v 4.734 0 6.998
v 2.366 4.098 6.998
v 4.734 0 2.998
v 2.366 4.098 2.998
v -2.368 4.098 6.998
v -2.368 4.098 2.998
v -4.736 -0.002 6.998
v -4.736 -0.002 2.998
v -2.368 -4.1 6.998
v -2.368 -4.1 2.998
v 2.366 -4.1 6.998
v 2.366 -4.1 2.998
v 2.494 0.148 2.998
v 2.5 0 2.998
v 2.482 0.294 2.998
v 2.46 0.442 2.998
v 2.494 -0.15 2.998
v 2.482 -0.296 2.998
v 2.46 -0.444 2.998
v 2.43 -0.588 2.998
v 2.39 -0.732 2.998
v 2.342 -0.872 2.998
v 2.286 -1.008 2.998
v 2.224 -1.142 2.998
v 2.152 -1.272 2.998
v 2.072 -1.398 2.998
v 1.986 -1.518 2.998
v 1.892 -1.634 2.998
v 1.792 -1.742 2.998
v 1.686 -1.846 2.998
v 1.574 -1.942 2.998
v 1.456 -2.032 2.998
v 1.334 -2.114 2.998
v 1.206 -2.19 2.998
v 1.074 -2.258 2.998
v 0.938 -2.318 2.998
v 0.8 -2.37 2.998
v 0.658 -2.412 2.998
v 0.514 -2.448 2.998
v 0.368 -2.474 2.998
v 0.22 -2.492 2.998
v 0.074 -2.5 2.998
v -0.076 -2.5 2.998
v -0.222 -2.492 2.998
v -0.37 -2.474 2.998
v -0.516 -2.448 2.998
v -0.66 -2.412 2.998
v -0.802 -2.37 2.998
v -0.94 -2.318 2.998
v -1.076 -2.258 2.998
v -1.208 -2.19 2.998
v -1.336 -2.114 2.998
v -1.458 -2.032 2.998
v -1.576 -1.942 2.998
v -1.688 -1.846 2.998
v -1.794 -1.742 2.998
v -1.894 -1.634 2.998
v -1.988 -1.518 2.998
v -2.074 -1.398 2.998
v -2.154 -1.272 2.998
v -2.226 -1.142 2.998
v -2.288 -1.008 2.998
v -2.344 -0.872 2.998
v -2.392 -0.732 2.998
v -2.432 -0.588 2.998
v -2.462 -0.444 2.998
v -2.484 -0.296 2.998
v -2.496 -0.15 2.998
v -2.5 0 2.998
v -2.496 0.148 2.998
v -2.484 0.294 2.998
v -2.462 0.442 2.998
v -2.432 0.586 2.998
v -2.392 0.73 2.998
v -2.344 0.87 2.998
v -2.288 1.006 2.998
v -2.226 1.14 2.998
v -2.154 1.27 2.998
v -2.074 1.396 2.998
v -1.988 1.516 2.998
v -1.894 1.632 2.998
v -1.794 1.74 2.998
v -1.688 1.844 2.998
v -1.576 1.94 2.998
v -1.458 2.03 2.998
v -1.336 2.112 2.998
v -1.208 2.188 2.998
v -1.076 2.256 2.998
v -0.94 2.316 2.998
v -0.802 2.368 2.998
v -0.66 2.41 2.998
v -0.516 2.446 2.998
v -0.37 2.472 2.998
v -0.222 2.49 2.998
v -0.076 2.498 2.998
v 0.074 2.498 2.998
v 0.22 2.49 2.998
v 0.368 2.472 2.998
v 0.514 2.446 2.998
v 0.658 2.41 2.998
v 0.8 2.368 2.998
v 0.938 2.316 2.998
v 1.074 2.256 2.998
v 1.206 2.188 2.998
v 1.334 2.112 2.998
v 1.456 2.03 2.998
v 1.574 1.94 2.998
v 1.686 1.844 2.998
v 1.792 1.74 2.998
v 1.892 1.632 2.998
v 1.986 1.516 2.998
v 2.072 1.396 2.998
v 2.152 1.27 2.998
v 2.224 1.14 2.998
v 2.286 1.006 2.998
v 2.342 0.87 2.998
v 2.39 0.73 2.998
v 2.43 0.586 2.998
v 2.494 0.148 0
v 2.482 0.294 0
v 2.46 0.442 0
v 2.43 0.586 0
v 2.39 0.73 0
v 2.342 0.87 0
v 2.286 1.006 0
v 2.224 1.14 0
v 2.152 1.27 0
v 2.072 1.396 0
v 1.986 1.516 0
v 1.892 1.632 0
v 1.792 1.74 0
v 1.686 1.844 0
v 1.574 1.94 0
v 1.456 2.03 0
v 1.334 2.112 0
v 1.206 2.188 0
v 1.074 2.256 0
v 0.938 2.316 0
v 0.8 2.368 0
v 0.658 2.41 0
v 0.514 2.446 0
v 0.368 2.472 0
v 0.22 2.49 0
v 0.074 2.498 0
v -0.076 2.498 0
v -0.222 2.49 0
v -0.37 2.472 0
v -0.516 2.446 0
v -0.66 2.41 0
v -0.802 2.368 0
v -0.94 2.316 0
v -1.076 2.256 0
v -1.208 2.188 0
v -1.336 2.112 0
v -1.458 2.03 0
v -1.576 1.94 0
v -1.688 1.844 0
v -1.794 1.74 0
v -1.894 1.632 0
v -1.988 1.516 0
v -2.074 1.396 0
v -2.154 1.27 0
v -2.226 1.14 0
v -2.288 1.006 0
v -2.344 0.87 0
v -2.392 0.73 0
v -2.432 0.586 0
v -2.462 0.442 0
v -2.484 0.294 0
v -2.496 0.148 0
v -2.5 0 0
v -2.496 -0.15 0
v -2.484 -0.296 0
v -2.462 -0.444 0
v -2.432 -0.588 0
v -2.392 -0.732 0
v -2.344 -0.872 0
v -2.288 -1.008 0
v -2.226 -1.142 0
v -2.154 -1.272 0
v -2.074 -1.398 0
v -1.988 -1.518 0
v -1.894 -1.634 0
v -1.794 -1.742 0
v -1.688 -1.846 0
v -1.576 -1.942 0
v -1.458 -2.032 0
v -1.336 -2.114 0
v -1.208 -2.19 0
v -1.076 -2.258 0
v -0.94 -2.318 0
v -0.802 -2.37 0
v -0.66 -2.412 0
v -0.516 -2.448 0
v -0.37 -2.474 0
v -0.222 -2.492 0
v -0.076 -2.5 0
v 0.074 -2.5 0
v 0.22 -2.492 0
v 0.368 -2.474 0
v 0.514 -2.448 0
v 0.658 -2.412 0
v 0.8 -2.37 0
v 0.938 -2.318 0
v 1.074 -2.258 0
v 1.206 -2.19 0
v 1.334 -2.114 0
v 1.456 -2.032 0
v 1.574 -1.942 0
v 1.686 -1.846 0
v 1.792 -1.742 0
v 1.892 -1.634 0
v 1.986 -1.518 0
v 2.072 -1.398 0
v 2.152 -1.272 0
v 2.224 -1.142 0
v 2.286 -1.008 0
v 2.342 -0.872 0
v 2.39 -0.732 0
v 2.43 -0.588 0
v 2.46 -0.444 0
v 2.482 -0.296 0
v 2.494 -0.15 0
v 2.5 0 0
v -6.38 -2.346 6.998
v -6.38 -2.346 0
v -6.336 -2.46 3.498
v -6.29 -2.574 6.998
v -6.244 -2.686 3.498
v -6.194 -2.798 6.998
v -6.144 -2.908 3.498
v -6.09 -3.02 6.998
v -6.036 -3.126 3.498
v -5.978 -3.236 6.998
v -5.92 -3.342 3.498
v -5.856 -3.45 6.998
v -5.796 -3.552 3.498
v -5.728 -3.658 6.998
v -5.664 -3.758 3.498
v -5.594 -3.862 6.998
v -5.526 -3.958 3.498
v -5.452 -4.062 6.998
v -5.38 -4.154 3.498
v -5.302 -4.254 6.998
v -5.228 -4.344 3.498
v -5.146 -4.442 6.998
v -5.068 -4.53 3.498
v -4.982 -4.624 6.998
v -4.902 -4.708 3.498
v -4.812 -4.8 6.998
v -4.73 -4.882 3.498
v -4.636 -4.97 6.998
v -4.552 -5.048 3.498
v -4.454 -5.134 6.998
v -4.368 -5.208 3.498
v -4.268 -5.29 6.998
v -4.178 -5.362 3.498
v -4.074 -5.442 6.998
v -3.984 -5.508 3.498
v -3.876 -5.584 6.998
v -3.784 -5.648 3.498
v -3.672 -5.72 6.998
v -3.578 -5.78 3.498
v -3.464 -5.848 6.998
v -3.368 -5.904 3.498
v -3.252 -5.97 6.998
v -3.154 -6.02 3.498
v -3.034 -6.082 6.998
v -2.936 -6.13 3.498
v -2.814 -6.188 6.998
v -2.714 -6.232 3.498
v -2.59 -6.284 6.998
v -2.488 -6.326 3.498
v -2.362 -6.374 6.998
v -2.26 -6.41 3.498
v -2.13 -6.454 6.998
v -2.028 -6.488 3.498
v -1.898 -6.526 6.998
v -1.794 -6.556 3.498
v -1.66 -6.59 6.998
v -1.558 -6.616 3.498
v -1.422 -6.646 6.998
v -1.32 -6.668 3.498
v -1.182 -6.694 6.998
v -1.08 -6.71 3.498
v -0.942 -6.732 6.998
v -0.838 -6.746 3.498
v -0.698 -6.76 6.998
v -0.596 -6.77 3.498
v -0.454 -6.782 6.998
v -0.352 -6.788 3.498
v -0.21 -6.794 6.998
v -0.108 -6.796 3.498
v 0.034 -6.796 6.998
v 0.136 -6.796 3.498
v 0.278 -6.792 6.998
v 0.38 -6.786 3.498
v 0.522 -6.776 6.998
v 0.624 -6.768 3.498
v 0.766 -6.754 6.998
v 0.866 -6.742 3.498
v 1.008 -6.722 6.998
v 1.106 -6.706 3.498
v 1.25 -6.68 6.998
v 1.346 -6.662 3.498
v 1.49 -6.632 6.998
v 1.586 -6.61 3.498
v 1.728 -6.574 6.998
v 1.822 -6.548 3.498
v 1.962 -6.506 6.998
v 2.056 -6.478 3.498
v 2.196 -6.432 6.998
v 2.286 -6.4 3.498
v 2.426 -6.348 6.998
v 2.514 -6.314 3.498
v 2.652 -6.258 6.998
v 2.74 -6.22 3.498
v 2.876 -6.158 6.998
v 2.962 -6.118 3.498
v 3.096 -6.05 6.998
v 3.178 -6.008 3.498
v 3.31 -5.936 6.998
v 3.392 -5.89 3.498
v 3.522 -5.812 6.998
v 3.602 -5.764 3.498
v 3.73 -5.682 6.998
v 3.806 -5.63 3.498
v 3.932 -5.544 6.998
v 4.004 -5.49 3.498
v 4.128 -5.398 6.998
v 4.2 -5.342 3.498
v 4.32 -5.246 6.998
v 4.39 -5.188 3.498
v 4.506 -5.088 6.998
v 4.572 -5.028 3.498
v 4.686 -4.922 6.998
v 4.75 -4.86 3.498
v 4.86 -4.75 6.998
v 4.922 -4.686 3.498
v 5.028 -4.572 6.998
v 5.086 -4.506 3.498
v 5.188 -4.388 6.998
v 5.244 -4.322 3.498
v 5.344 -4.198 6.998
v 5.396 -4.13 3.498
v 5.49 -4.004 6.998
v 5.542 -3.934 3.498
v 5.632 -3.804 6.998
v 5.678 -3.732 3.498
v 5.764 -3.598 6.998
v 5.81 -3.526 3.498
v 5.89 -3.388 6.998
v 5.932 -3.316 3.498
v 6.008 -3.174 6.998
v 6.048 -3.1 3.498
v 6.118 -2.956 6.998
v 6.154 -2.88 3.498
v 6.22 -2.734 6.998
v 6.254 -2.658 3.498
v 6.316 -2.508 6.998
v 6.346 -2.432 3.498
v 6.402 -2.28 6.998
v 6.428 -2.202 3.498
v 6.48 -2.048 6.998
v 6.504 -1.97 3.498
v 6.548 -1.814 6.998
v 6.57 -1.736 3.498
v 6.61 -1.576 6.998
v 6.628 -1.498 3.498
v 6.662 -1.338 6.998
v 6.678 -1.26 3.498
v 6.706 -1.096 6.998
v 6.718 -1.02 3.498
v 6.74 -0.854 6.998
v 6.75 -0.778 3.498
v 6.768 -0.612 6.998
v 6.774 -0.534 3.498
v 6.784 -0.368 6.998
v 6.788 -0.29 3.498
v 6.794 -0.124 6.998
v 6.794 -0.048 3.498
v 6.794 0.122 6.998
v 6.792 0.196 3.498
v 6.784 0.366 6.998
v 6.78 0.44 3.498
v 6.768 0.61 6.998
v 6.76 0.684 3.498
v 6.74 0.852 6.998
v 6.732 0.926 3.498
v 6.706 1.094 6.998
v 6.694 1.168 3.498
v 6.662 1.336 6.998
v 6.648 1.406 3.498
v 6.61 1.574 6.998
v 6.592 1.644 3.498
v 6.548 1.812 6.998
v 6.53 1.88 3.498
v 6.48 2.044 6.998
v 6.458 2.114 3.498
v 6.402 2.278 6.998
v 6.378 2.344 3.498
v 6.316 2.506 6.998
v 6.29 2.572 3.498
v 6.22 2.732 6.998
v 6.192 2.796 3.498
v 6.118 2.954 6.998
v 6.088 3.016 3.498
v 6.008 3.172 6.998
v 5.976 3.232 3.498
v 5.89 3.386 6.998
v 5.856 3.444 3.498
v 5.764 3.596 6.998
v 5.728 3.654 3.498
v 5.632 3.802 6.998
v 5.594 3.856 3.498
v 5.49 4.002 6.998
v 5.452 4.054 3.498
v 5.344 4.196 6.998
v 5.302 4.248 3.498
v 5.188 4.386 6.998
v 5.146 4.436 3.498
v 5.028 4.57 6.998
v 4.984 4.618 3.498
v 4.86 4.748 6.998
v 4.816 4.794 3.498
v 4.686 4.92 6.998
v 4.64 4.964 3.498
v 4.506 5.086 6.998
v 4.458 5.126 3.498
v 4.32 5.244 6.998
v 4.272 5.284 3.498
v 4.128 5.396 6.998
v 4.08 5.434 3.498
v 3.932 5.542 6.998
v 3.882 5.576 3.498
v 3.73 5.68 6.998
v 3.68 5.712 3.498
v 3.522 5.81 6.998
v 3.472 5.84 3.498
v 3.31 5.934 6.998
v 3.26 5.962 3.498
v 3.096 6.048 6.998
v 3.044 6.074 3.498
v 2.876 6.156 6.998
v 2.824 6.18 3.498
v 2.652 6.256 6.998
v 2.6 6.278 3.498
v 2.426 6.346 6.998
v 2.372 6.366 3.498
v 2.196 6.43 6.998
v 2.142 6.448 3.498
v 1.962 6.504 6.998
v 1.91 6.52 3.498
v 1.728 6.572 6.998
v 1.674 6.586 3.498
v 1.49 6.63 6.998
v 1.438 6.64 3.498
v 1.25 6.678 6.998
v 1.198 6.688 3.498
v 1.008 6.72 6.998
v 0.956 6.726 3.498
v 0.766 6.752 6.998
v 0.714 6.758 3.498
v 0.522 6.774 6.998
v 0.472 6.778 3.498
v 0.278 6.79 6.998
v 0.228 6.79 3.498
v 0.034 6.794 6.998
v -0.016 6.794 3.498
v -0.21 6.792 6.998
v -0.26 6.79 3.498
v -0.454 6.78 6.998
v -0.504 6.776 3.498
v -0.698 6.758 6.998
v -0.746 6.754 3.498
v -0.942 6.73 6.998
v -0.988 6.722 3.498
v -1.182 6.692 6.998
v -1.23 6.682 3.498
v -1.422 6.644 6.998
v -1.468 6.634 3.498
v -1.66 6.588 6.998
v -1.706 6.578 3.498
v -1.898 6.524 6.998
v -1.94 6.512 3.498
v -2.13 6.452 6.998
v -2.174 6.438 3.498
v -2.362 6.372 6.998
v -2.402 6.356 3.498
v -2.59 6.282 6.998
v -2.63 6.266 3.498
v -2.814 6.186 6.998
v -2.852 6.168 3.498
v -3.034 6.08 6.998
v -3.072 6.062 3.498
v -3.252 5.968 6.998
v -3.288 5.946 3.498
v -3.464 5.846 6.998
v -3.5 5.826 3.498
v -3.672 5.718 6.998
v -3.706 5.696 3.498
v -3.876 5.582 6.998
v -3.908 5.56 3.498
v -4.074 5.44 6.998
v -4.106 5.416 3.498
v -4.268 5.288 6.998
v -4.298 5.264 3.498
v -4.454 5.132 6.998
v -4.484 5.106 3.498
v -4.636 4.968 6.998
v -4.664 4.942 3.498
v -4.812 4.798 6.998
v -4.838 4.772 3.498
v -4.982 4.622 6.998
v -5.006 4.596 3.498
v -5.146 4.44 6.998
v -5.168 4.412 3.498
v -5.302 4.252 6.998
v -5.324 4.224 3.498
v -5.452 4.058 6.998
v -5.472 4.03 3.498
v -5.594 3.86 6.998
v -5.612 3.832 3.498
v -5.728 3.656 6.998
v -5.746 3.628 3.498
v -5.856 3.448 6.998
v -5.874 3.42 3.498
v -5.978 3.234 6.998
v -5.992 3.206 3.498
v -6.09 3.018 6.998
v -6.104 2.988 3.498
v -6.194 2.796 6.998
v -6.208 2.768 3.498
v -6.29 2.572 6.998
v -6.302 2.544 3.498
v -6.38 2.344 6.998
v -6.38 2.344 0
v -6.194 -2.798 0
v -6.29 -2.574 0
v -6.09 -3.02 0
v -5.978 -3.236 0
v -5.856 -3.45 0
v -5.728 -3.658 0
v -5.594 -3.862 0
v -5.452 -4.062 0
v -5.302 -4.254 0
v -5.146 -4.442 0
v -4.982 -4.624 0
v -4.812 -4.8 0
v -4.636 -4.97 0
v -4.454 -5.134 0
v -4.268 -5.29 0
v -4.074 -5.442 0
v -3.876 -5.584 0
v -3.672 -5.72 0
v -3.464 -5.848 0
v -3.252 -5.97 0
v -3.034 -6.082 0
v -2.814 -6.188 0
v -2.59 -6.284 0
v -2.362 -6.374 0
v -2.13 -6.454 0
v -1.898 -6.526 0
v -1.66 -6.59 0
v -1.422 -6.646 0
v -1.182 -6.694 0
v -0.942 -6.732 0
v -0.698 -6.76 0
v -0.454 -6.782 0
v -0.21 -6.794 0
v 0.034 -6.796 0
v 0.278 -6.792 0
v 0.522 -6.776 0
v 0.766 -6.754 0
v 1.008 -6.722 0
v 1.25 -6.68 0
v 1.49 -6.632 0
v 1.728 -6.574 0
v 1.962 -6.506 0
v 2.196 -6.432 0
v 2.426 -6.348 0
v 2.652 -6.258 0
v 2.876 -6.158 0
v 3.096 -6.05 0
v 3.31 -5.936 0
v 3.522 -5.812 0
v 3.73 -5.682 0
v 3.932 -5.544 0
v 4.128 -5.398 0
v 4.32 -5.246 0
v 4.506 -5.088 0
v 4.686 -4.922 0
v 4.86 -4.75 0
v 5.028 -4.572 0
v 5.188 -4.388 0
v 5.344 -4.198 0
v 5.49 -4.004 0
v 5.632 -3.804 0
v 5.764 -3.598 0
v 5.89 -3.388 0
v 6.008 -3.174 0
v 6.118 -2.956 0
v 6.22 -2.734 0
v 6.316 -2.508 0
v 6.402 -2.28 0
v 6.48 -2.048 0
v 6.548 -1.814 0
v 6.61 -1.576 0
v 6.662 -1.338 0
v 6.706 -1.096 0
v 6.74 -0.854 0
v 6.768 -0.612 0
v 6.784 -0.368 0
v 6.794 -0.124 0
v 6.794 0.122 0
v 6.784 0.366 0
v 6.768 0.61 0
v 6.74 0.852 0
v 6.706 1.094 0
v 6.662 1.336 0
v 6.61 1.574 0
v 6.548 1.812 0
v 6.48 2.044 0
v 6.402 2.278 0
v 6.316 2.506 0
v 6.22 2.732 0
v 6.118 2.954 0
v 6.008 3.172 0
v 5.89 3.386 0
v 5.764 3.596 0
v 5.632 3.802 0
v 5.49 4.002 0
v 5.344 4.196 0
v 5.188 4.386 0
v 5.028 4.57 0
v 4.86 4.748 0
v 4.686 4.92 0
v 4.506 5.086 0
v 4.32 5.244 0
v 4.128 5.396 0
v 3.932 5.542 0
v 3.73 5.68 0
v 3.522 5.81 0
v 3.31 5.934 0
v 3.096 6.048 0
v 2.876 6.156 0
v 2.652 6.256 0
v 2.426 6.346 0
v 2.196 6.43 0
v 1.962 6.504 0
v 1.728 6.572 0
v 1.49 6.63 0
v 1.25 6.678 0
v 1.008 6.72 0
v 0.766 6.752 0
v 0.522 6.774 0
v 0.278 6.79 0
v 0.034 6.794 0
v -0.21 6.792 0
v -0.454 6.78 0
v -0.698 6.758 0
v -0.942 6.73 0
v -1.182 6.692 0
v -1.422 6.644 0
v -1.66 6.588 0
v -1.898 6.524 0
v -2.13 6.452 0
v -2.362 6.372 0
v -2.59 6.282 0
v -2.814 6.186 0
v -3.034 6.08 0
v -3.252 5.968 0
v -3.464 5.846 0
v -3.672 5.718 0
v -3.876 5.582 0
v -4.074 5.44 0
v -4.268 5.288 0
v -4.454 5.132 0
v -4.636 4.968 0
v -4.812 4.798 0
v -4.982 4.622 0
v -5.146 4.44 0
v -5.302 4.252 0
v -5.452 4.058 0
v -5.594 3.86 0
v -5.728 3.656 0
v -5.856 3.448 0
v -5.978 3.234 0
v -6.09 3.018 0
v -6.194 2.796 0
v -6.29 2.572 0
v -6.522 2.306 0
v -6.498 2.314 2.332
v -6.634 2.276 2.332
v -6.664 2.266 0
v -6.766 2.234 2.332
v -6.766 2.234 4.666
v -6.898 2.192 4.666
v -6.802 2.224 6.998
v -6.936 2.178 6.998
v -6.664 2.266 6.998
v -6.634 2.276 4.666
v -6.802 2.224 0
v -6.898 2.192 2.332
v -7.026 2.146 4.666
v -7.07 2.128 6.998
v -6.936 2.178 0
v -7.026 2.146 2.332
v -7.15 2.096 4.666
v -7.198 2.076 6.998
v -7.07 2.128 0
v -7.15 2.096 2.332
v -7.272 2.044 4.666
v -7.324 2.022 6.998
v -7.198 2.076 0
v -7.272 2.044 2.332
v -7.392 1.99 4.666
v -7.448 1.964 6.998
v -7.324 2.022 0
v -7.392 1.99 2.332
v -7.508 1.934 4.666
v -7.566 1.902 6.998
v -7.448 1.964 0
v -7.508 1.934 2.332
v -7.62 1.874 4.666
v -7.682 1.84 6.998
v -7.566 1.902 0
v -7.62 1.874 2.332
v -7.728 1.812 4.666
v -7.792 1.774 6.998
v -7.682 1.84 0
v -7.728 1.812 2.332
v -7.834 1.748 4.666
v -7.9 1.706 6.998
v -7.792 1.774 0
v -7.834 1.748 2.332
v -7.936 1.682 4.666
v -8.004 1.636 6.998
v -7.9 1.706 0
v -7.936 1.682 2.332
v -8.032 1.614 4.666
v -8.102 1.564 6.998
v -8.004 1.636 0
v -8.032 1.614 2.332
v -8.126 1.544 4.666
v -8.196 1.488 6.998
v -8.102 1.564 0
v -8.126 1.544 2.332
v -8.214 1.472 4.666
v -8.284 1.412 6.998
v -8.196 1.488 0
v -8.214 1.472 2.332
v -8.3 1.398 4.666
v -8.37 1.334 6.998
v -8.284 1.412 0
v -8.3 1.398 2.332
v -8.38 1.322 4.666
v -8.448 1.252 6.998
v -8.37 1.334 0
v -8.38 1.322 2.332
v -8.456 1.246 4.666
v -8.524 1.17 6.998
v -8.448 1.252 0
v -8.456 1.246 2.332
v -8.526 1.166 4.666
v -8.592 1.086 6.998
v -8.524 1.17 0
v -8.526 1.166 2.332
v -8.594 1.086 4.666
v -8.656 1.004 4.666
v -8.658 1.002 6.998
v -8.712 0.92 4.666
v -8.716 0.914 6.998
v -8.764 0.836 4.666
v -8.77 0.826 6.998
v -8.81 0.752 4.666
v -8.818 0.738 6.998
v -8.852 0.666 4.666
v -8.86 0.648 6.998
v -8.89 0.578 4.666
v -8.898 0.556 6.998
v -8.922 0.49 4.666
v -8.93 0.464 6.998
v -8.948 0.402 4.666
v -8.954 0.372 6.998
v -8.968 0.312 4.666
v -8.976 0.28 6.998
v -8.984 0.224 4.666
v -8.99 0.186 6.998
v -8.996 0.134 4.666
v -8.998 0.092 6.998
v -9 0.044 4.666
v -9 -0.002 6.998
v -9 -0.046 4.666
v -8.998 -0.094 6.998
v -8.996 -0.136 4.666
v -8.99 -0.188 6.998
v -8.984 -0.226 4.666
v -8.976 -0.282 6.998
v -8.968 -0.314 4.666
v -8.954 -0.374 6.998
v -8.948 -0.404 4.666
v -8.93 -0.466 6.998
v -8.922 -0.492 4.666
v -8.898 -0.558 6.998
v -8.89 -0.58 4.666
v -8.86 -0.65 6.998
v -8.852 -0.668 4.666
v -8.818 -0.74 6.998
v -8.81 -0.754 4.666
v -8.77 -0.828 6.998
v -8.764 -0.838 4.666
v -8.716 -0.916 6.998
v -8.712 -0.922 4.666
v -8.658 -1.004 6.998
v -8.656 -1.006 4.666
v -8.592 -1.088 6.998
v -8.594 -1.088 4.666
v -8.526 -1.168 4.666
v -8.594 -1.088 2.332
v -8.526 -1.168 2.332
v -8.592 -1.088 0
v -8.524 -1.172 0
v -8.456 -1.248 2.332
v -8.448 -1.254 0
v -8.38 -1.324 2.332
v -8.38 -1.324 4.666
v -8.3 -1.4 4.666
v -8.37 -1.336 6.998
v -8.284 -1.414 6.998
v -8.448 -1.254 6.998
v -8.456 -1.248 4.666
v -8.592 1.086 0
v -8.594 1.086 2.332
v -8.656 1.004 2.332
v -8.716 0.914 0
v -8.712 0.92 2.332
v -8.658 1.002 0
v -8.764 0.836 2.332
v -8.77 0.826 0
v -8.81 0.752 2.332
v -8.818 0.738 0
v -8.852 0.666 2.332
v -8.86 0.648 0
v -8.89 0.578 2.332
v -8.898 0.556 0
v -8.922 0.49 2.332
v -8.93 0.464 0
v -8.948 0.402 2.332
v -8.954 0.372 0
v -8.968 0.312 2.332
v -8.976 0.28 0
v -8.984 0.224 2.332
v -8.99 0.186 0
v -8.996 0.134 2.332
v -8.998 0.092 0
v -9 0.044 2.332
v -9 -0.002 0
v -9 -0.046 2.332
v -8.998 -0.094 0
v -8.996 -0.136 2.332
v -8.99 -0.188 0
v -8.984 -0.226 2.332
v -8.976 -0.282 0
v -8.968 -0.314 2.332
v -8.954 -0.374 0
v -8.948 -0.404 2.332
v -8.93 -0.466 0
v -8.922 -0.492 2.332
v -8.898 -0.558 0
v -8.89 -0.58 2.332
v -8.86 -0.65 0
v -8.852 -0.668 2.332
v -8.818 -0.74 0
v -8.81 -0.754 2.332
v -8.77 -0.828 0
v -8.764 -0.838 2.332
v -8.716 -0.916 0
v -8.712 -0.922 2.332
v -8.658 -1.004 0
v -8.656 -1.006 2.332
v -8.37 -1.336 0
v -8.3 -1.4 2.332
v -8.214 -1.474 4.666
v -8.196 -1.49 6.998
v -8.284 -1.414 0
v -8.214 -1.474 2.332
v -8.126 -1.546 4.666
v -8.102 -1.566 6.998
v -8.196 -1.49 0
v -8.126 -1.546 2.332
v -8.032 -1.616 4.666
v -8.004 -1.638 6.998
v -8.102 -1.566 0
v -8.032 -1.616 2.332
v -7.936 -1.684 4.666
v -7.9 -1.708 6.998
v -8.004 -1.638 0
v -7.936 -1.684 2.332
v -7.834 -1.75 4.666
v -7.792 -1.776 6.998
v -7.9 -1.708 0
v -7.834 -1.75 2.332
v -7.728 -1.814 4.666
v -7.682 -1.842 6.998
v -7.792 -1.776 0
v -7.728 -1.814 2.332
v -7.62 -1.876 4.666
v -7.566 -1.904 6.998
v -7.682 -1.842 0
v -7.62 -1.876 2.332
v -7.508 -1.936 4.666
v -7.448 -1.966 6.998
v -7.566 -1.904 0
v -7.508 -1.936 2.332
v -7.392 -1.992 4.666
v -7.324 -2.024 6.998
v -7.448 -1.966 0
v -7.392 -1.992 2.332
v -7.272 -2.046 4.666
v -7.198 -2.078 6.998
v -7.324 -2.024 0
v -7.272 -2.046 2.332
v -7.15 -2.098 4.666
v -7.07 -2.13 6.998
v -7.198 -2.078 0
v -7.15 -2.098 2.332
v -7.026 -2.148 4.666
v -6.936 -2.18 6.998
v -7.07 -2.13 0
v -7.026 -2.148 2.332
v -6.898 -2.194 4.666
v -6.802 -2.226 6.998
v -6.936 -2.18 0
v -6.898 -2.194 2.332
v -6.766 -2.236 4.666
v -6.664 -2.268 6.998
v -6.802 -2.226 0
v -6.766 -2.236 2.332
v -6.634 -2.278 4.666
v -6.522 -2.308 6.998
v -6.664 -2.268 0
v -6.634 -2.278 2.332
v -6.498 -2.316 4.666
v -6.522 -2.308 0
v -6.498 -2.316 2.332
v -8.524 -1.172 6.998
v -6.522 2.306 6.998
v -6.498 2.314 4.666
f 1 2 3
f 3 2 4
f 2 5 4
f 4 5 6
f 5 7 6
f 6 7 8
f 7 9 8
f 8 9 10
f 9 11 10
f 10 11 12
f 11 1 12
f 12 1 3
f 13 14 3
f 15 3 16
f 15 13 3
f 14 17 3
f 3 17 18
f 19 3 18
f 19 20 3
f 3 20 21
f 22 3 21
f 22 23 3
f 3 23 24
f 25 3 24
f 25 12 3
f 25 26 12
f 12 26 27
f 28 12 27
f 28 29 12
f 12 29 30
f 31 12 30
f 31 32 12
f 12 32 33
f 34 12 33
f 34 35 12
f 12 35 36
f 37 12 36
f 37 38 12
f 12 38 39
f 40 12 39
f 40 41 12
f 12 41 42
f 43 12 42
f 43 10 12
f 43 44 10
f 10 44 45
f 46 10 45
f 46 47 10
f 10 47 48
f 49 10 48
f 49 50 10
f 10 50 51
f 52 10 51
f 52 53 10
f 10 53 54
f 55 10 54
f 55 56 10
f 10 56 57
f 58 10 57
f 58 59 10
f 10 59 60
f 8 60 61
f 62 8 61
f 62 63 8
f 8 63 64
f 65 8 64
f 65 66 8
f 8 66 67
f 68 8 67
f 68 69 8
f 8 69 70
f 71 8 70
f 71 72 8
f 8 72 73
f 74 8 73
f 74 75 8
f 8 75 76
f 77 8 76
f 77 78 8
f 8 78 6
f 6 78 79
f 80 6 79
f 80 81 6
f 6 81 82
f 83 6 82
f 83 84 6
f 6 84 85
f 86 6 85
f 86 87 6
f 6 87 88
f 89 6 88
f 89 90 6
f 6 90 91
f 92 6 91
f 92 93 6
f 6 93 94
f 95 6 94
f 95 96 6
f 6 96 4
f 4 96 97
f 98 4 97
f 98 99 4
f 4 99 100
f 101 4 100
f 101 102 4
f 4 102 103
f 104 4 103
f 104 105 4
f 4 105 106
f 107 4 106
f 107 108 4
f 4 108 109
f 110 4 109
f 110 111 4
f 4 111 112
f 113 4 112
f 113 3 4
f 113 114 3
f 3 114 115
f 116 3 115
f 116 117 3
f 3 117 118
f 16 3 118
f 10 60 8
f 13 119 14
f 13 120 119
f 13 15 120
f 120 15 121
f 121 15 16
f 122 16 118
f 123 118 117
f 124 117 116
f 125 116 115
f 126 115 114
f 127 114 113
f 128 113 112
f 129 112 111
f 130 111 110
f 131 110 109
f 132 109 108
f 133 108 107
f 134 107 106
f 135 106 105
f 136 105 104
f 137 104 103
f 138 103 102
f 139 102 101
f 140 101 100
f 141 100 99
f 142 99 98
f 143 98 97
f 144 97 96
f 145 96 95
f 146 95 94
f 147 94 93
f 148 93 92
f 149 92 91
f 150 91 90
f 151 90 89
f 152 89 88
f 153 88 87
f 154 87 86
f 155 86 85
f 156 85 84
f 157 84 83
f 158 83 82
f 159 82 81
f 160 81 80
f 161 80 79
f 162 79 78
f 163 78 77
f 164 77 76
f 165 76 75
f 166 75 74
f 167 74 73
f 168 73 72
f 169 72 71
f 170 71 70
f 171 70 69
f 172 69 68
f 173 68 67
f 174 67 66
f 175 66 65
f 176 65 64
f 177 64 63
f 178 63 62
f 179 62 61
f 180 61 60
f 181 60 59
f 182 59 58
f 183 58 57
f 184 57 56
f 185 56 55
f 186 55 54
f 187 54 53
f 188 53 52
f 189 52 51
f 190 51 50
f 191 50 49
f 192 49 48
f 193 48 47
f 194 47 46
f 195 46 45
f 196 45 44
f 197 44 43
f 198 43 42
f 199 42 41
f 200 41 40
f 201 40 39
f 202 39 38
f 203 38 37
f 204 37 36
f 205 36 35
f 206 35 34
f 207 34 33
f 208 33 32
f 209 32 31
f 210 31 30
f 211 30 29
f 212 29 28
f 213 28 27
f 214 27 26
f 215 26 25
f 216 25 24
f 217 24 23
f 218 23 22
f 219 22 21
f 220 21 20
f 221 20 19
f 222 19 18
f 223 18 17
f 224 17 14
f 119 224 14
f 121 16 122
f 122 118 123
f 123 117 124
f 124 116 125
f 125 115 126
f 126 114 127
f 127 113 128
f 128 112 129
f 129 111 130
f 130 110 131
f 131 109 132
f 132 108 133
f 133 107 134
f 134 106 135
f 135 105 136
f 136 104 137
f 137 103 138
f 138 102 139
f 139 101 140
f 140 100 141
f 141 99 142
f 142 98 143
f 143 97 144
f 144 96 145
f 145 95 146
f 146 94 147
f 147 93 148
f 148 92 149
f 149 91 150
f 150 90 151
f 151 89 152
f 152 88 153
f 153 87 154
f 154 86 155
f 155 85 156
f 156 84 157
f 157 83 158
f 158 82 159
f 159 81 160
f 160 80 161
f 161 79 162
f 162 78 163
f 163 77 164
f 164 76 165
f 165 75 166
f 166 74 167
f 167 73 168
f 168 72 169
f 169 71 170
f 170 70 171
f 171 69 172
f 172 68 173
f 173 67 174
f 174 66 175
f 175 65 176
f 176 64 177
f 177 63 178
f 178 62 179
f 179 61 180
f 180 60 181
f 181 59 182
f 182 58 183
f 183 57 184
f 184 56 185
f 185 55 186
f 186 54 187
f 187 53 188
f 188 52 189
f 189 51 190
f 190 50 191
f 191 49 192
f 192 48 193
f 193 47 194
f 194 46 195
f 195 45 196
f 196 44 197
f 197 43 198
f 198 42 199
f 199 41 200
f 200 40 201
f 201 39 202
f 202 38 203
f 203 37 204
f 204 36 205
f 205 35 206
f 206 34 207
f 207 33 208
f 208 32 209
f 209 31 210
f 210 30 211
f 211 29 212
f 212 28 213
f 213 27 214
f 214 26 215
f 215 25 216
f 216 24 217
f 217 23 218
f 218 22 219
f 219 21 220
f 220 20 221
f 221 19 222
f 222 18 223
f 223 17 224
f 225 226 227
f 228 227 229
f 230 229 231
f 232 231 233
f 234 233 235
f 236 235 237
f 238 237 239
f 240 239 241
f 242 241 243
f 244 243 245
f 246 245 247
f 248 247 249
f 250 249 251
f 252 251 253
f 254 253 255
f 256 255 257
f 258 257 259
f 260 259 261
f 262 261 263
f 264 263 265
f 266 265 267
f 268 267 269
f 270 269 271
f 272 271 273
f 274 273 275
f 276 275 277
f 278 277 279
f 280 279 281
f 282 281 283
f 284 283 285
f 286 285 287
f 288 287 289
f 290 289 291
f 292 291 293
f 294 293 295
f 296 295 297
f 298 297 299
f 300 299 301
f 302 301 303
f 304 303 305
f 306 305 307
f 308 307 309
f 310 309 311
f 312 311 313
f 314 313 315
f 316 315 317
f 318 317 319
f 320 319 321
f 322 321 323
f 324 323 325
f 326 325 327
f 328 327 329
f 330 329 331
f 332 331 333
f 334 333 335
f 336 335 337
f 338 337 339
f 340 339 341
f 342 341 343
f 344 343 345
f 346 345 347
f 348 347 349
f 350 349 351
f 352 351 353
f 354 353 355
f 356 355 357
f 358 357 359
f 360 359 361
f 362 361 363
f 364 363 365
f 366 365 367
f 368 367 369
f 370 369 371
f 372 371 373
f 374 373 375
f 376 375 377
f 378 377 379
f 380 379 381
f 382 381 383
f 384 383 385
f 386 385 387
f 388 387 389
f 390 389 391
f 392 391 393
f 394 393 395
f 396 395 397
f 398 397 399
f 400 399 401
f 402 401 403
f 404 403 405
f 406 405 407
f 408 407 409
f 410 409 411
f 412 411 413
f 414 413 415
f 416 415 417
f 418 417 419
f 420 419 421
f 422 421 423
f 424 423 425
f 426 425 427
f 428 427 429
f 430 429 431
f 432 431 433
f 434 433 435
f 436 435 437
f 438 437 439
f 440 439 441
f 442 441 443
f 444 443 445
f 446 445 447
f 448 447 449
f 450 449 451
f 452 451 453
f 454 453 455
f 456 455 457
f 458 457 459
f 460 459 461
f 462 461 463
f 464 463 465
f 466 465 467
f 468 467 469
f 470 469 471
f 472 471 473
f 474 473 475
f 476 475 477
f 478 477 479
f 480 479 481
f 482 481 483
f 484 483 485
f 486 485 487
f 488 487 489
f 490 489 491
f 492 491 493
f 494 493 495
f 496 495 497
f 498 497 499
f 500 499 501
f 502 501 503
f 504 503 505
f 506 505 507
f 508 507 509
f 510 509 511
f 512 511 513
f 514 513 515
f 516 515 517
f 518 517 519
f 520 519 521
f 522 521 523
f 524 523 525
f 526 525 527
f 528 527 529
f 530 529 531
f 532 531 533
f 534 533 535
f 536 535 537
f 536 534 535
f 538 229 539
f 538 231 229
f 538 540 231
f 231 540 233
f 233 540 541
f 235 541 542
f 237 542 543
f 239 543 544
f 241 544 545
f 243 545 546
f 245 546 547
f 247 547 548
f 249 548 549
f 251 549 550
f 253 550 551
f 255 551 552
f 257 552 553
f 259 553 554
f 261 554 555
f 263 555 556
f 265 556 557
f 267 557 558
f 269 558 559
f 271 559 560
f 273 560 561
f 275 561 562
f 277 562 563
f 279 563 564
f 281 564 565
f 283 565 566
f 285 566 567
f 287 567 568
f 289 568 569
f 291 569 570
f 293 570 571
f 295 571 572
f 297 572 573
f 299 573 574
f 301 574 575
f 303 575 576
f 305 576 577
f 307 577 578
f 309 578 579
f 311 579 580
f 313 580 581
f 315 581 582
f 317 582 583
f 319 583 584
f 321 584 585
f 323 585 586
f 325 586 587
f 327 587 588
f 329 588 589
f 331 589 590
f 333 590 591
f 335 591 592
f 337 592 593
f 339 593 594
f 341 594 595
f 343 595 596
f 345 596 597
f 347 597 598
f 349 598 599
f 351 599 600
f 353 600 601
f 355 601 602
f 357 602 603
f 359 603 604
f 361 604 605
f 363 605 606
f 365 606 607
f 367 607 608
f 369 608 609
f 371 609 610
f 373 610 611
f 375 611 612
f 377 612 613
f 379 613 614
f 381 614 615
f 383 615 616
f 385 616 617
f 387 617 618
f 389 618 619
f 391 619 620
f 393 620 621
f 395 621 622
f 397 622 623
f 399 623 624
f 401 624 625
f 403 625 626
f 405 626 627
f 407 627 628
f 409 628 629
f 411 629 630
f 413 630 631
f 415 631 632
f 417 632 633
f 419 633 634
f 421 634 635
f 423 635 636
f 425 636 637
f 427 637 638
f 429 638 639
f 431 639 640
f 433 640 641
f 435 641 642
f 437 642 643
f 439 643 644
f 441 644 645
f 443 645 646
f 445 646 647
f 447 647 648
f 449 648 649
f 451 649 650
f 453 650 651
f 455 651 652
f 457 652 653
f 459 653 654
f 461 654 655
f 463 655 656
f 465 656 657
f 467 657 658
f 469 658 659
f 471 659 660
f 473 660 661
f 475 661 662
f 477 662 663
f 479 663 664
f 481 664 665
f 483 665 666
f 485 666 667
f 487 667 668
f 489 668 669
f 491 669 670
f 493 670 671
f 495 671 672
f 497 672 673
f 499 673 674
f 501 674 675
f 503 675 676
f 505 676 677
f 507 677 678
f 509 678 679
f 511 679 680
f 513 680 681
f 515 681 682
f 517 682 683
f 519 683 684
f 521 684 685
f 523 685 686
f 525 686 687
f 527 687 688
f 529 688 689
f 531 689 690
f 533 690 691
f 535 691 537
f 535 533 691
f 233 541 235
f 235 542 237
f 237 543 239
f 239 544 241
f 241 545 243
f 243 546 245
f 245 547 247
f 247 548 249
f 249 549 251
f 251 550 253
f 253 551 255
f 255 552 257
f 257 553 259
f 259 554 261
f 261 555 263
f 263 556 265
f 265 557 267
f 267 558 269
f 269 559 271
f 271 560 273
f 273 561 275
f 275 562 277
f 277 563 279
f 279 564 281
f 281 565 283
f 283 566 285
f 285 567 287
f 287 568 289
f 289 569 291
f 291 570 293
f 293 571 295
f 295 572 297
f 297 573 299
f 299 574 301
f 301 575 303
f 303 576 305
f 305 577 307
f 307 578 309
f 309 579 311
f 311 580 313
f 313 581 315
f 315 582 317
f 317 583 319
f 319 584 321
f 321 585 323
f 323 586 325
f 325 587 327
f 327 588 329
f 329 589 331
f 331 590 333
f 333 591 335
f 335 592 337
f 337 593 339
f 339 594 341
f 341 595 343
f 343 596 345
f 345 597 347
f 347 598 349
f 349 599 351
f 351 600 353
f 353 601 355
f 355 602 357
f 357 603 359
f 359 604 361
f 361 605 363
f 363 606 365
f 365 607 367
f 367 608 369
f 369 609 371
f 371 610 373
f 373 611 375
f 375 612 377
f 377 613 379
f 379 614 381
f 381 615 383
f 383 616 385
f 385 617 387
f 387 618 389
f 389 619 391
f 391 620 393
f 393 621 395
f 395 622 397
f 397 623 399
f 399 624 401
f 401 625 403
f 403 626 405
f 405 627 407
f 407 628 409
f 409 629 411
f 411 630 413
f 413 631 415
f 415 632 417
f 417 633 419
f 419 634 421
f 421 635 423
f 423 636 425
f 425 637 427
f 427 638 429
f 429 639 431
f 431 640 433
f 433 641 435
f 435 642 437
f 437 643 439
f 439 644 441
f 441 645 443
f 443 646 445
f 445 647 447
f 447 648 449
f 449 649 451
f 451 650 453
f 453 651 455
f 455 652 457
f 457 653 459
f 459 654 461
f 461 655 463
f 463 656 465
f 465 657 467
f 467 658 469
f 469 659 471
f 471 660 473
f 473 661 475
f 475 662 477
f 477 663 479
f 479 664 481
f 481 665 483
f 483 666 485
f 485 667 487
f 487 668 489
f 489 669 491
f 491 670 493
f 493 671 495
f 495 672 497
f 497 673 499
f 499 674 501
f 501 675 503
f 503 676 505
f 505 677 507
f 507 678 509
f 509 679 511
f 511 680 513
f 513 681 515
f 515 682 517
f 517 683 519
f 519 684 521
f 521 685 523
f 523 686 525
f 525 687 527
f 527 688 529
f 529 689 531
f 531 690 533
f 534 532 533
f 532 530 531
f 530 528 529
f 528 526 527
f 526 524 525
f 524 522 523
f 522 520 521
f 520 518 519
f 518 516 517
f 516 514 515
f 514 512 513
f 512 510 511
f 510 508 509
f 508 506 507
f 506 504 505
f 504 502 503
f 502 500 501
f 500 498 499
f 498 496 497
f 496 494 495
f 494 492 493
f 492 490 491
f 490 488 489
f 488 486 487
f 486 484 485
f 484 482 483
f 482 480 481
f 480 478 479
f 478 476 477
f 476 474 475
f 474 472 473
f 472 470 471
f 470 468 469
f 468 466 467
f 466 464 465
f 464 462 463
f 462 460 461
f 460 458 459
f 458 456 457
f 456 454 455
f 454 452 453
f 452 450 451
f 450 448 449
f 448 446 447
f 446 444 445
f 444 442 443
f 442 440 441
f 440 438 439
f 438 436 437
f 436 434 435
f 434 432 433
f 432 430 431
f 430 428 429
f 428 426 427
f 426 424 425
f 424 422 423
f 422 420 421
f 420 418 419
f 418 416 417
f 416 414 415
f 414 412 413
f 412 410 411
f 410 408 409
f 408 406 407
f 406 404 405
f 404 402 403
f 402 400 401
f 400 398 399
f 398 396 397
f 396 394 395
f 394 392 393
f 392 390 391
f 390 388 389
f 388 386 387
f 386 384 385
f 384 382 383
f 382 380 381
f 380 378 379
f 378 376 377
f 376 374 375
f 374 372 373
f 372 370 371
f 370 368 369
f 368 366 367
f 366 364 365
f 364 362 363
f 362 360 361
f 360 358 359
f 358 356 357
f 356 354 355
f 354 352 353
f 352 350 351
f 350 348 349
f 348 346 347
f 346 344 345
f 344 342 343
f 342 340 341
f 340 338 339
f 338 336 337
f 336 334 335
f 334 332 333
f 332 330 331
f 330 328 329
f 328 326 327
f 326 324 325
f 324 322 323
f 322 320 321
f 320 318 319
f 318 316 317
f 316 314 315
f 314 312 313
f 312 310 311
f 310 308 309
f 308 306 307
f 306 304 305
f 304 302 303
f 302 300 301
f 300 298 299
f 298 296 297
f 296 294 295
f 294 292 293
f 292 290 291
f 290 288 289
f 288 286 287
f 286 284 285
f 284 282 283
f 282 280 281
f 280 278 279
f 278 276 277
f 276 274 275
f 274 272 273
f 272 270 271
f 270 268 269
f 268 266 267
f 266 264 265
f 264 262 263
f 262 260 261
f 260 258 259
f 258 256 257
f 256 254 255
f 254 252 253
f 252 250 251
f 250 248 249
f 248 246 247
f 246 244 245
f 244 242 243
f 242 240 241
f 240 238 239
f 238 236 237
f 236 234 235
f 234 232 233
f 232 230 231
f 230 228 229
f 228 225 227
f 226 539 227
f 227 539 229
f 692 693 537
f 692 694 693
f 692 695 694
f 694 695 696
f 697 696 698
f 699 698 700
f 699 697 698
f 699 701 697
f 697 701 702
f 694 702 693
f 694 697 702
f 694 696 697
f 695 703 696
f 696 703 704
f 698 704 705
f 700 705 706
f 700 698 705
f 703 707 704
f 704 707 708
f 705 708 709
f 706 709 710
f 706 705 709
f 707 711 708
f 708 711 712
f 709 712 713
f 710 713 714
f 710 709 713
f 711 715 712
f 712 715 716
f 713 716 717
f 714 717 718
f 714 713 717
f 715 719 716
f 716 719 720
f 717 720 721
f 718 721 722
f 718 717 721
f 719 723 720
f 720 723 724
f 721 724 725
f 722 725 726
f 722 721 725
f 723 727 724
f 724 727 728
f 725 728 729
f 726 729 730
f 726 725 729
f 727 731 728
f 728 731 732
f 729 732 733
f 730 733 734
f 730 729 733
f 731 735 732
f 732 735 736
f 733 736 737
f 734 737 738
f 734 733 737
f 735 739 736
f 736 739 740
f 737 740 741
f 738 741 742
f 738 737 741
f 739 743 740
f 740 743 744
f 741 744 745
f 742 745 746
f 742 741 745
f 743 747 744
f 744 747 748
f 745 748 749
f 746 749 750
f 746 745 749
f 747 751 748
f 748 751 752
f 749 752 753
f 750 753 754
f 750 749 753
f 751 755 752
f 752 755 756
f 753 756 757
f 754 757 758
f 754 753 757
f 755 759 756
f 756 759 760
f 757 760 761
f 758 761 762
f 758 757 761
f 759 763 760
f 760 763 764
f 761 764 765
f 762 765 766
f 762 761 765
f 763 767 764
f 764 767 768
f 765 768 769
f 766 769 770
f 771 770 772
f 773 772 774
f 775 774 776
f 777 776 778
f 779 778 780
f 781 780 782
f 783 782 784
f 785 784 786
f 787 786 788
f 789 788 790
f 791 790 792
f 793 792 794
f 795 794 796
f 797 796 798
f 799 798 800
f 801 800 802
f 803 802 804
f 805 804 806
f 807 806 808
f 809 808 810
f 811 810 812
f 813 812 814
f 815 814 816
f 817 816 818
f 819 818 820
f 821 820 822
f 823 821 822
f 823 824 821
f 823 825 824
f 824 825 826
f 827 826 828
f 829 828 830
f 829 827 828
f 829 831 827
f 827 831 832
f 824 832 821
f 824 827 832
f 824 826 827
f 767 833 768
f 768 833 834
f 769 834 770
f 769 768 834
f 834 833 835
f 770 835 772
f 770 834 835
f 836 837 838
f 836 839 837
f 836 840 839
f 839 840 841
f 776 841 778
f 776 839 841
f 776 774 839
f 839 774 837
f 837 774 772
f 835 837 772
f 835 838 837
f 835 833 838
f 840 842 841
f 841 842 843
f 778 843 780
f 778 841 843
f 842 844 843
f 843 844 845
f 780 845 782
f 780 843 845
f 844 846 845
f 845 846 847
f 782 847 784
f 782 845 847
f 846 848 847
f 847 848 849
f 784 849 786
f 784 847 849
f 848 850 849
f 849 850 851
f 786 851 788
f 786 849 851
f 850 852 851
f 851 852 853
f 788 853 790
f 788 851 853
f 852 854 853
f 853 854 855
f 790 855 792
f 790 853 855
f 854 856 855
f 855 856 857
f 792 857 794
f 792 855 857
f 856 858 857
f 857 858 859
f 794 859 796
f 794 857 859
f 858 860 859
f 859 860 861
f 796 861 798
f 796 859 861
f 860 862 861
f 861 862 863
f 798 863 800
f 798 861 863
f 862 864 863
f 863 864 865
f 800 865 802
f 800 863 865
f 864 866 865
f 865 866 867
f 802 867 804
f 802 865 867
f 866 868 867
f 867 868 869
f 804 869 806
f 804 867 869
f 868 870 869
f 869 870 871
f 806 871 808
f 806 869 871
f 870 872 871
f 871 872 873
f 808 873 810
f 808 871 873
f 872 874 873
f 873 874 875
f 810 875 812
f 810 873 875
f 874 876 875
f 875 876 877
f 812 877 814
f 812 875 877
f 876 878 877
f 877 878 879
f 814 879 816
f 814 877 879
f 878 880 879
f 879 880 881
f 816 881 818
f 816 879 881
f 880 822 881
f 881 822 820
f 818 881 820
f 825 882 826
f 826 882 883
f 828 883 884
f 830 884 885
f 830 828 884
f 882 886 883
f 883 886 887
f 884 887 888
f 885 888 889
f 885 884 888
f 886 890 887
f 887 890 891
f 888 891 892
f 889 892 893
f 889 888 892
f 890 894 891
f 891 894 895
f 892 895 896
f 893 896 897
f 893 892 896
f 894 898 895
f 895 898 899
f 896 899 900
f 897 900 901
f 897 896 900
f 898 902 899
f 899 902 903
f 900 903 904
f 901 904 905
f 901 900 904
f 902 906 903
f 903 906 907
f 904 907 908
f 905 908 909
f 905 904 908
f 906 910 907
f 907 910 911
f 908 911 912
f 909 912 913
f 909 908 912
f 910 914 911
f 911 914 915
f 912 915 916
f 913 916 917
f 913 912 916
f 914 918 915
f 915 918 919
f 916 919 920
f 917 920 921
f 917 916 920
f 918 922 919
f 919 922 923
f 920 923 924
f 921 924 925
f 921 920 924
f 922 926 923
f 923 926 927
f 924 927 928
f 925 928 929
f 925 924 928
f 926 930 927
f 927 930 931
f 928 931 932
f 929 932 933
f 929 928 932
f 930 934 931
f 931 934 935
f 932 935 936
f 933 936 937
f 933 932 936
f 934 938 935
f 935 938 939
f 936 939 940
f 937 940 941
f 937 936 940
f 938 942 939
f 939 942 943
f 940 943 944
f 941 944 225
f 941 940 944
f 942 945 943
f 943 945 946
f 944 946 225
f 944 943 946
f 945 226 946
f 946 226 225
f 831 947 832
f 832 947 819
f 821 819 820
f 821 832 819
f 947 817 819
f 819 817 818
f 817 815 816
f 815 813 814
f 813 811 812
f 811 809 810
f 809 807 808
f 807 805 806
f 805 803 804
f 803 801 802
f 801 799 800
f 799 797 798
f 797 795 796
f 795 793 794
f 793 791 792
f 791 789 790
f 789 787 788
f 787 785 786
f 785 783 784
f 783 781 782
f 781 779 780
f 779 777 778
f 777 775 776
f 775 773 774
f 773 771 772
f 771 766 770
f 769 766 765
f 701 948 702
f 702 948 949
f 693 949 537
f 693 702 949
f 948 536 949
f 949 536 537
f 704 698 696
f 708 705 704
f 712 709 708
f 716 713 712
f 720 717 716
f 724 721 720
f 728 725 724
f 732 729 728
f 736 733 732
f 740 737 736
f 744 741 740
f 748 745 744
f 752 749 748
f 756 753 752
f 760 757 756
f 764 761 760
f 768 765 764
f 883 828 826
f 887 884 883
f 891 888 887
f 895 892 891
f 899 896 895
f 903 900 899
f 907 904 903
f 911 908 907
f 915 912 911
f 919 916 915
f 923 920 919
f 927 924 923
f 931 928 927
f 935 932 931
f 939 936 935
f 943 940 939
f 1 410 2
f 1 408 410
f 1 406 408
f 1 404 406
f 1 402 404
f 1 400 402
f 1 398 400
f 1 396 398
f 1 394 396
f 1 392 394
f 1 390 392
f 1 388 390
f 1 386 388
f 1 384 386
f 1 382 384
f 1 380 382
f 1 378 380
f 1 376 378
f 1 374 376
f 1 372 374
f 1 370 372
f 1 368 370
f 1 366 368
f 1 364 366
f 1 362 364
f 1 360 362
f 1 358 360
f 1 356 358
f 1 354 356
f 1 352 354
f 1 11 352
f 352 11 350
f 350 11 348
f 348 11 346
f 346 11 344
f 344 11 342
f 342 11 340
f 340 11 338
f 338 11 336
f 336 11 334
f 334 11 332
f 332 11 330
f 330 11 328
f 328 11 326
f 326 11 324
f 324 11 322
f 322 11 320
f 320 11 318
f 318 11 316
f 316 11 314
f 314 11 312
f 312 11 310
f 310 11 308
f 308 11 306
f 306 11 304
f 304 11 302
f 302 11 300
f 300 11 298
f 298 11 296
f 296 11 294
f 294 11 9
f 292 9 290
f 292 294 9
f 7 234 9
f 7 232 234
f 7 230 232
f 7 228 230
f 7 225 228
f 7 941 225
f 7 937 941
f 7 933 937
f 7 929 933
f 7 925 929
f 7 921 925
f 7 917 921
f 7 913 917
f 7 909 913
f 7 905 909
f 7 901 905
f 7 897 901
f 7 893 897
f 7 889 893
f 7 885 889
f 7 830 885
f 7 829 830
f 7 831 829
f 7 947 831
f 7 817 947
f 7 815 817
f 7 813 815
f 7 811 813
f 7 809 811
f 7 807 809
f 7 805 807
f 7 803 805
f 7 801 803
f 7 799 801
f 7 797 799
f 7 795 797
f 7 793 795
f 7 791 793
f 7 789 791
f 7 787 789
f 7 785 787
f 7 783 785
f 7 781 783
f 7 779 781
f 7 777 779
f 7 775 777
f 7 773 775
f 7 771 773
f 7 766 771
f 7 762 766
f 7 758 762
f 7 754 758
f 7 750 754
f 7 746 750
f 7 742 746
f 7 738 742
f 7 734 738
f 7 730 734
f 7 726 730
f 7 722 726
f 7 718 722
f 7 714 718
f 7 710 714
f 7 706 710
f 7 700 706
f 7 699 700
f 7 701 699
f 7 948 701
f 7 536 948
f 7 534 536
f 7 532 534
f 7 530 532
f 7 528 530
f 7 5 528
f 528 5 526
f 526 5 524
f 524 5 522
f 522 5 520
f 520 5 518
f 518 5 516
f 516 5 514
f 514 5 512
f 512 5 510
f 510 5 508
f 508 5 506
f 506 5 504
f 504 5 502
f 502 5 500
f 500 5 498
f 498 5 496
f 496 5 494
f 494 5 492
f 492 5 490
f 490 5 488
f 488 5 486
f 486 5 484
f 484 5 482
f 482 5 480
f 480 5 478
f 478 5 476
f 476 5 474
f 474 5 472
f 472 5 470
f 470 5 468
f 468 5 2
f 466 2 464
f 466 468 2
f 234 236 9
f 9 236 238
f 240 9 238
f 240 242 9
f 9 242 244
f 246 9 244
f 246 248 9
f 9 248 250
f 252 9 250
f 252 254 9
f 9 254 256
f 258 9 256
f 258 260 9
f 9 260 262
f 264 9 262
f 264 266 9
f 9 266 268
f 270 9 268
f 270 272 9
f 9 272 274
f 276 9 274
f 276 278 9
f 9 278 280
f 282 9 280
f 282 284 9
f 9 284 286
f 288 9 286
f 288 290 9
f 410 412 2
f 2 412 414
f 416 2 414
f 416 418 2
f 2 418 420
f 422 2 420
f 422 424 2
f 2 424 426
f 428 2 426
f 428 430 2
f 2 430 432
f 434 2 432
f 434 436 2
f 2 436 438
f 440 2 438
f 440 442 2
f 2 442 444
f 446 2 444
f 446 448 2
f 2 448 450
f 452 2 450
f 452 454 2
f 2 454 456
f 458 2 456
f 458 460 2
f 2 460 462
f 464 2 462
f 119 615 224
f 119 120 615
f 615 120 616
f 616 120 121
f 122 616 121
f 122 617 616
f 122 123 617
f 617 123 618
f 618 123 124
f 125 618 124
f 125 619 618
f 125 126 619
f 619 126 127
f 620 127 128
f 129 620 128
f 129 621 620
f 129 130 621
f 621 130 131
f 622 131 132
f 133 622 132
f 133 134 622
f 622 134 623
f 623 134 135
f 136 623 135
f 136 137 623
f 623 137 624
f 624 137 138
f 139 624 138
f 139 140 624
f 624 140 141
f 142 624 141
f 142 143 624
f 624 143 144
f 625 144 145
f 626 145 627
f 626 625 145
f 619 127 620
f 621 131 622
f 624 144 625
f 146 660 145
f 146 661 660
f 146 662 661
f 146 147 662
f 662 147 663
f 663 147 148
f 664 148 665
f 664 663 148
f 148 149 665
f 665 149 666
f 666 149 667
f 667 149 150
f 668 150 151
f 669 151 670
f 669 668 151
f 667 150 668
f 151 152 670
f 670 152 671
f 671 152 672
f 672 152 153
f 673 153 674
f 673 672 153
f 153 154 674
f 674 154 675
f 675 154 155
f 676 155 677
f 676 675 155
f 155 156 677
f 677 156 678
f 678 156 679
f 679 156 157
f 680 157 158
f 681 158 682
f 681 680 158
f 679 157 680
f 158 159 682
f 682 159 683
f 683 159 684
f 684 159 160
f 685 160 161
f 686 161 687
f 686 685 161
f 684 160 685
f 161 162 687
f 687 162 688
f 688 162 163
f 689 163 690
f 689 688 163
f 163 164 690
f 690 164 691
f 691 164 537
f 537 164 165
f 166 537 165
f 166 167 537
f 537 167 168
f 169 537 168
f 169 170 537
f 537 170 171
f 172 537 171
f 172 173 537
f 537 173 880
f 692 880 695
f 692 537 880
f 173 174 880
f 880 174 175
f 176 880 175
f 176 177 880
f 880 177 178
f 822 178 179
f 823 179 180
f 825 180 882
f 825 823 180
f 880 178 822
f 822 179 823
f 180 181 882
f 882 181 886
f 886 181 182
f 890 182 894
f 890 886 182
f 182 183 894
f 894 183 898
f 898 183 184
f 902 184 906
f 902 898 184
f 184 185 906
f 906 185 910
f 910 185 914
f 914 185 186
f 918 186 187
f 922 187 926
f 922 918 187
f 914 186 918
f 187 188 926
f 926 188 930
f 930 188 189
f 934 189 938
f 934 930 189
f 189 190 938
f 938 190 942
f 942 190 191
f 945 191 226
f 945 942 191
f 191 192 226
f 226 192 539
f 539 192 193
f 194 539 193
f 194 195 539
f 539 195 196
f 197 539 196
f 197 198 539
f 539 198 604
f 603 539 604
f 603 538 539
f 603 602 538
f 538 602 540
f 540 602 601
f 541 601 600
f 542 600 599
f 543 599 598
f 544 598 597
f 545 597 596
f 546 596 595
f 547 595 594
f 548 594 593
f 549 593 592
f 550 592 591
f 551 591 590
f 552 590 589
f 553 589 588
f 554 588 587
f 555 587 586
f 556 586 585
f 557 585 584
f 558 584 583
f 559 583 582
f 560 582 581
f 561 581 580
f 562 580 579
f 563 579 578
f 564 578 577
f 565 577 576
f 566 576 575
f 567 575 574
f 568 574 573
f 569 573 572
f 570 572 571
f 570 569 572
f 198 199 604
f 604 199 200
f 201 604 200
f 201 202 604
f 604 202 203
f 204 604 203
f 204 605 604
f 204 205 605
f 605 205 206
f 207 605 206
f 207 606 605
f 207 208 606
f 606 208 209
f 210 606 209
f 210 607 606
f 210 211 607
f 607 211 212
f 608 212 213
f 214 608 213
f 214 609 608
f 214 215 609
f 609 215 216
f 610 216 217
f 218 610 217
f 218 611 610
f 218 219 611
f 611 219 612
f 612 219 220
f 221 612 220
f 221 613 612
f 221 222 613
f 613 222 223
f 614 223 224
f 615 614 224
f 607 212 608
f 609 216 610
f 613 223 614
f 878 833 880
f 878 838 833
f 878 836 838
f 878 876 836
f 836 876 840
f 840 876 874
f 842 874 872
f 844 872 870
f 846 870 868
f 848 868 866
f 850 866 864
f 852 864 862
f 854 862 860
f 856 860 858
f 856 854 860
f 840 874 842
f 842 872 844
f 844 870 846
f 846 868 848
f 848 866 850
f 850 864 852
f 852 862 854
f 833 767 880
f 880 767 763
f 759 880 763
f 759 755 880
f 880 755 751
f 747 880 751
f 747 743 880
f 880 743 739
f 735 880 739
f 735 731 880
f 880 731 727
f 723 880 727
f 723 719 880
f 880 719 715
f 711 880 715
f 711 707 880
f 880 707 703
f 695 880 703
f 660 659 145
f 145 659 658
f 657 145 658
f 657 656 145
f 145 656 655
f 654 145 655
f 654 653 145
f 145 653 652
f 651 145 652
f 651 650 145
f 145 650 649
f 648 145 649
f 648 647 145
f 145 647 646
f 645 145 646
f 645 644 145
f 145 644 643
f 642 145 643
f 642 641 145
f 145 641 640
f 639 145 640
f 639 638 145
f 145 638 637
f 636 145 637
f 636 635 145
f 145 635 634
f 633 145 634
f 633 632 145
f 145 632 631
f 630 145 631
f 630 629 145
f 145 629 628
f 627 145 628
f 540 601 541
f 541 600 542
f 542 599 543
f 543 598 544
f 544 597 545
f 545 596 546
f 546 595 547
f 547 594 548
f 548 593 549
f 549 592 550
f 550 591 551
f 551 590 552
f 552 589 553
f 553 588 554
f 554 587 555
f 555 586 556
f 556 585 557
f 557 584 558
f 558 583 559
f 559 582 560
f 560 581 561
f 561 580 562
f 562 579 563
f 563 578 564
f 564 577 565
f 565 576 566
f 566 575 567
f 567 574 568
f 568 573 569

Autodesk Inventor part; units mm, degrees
ref_plane "YZ Plane" through (0, 0, 0) normal (1, 0, 0) x (0, 1, 0)
ref_plane "XZ Plane" through (0, 0, 0) normal (0, 1, 0) x (-1, 0, 0)
ref_plane "XY Plane" through (0, 0, 0) normal (0, 0, 1) x (1, 0, 0)
sketch "Sketch1" plane through (0, 0, 0) normal (0, 0, 1) x (1, 0, 0)
  line L0 (-2.5, 0) -> (-9, 0)
  ellipse E0 centre (-4.792, 0) end of major axis (-9, 0) minor radius 2.5316 (-6.3785, 2.3447) -> (-6.3785, -2.3447) ccw
  arc A0 (-6.3785, -2.3447) -> (-6.3785, 2.3447) centre (0, 0) ccw
  line L1 (-6.3785, 2.3447) -> (-6.225, 2.482)
  circle A1 centre (0, 0) radius 2.5
  dimension "d2" = 6.5
  dimension "d4" = 5
extrude "Extrusion1" add sketch "Sketch1" along normal blind 7
sketch "Sketch2" plane through (0, 0, 7) normal (0, 0, 1) x (1, 0, 0)
  circle A0 centre (0, 0) radius 2.5 projected
  arc A1 (-6.3785, -2.3447) -> (-6.3785, 2.3447) centre (0, 0) ccw projected
  line L0 (4.7343, 0) -> (2.3671, -4.1)
  line L1 (2.3671, -4.1) -> (-2.3671, -4.1)
  line L2 (-2.3671, -4.1) -> (-4.7343, 0)
  line L3 (-4.7343, 0) -> (-2.3671, 4.1)
  line L4 (-2.3671, 4.1) -> (2.3671, 4.1)
  line L5 (2.3671, 4.1) -> (4.7343, 0)
  dimension "d7" = 8.2
extrude "Extrusion2" cut sketch "Sketch2" against normal blind 4
properties part number "cam4.0"
